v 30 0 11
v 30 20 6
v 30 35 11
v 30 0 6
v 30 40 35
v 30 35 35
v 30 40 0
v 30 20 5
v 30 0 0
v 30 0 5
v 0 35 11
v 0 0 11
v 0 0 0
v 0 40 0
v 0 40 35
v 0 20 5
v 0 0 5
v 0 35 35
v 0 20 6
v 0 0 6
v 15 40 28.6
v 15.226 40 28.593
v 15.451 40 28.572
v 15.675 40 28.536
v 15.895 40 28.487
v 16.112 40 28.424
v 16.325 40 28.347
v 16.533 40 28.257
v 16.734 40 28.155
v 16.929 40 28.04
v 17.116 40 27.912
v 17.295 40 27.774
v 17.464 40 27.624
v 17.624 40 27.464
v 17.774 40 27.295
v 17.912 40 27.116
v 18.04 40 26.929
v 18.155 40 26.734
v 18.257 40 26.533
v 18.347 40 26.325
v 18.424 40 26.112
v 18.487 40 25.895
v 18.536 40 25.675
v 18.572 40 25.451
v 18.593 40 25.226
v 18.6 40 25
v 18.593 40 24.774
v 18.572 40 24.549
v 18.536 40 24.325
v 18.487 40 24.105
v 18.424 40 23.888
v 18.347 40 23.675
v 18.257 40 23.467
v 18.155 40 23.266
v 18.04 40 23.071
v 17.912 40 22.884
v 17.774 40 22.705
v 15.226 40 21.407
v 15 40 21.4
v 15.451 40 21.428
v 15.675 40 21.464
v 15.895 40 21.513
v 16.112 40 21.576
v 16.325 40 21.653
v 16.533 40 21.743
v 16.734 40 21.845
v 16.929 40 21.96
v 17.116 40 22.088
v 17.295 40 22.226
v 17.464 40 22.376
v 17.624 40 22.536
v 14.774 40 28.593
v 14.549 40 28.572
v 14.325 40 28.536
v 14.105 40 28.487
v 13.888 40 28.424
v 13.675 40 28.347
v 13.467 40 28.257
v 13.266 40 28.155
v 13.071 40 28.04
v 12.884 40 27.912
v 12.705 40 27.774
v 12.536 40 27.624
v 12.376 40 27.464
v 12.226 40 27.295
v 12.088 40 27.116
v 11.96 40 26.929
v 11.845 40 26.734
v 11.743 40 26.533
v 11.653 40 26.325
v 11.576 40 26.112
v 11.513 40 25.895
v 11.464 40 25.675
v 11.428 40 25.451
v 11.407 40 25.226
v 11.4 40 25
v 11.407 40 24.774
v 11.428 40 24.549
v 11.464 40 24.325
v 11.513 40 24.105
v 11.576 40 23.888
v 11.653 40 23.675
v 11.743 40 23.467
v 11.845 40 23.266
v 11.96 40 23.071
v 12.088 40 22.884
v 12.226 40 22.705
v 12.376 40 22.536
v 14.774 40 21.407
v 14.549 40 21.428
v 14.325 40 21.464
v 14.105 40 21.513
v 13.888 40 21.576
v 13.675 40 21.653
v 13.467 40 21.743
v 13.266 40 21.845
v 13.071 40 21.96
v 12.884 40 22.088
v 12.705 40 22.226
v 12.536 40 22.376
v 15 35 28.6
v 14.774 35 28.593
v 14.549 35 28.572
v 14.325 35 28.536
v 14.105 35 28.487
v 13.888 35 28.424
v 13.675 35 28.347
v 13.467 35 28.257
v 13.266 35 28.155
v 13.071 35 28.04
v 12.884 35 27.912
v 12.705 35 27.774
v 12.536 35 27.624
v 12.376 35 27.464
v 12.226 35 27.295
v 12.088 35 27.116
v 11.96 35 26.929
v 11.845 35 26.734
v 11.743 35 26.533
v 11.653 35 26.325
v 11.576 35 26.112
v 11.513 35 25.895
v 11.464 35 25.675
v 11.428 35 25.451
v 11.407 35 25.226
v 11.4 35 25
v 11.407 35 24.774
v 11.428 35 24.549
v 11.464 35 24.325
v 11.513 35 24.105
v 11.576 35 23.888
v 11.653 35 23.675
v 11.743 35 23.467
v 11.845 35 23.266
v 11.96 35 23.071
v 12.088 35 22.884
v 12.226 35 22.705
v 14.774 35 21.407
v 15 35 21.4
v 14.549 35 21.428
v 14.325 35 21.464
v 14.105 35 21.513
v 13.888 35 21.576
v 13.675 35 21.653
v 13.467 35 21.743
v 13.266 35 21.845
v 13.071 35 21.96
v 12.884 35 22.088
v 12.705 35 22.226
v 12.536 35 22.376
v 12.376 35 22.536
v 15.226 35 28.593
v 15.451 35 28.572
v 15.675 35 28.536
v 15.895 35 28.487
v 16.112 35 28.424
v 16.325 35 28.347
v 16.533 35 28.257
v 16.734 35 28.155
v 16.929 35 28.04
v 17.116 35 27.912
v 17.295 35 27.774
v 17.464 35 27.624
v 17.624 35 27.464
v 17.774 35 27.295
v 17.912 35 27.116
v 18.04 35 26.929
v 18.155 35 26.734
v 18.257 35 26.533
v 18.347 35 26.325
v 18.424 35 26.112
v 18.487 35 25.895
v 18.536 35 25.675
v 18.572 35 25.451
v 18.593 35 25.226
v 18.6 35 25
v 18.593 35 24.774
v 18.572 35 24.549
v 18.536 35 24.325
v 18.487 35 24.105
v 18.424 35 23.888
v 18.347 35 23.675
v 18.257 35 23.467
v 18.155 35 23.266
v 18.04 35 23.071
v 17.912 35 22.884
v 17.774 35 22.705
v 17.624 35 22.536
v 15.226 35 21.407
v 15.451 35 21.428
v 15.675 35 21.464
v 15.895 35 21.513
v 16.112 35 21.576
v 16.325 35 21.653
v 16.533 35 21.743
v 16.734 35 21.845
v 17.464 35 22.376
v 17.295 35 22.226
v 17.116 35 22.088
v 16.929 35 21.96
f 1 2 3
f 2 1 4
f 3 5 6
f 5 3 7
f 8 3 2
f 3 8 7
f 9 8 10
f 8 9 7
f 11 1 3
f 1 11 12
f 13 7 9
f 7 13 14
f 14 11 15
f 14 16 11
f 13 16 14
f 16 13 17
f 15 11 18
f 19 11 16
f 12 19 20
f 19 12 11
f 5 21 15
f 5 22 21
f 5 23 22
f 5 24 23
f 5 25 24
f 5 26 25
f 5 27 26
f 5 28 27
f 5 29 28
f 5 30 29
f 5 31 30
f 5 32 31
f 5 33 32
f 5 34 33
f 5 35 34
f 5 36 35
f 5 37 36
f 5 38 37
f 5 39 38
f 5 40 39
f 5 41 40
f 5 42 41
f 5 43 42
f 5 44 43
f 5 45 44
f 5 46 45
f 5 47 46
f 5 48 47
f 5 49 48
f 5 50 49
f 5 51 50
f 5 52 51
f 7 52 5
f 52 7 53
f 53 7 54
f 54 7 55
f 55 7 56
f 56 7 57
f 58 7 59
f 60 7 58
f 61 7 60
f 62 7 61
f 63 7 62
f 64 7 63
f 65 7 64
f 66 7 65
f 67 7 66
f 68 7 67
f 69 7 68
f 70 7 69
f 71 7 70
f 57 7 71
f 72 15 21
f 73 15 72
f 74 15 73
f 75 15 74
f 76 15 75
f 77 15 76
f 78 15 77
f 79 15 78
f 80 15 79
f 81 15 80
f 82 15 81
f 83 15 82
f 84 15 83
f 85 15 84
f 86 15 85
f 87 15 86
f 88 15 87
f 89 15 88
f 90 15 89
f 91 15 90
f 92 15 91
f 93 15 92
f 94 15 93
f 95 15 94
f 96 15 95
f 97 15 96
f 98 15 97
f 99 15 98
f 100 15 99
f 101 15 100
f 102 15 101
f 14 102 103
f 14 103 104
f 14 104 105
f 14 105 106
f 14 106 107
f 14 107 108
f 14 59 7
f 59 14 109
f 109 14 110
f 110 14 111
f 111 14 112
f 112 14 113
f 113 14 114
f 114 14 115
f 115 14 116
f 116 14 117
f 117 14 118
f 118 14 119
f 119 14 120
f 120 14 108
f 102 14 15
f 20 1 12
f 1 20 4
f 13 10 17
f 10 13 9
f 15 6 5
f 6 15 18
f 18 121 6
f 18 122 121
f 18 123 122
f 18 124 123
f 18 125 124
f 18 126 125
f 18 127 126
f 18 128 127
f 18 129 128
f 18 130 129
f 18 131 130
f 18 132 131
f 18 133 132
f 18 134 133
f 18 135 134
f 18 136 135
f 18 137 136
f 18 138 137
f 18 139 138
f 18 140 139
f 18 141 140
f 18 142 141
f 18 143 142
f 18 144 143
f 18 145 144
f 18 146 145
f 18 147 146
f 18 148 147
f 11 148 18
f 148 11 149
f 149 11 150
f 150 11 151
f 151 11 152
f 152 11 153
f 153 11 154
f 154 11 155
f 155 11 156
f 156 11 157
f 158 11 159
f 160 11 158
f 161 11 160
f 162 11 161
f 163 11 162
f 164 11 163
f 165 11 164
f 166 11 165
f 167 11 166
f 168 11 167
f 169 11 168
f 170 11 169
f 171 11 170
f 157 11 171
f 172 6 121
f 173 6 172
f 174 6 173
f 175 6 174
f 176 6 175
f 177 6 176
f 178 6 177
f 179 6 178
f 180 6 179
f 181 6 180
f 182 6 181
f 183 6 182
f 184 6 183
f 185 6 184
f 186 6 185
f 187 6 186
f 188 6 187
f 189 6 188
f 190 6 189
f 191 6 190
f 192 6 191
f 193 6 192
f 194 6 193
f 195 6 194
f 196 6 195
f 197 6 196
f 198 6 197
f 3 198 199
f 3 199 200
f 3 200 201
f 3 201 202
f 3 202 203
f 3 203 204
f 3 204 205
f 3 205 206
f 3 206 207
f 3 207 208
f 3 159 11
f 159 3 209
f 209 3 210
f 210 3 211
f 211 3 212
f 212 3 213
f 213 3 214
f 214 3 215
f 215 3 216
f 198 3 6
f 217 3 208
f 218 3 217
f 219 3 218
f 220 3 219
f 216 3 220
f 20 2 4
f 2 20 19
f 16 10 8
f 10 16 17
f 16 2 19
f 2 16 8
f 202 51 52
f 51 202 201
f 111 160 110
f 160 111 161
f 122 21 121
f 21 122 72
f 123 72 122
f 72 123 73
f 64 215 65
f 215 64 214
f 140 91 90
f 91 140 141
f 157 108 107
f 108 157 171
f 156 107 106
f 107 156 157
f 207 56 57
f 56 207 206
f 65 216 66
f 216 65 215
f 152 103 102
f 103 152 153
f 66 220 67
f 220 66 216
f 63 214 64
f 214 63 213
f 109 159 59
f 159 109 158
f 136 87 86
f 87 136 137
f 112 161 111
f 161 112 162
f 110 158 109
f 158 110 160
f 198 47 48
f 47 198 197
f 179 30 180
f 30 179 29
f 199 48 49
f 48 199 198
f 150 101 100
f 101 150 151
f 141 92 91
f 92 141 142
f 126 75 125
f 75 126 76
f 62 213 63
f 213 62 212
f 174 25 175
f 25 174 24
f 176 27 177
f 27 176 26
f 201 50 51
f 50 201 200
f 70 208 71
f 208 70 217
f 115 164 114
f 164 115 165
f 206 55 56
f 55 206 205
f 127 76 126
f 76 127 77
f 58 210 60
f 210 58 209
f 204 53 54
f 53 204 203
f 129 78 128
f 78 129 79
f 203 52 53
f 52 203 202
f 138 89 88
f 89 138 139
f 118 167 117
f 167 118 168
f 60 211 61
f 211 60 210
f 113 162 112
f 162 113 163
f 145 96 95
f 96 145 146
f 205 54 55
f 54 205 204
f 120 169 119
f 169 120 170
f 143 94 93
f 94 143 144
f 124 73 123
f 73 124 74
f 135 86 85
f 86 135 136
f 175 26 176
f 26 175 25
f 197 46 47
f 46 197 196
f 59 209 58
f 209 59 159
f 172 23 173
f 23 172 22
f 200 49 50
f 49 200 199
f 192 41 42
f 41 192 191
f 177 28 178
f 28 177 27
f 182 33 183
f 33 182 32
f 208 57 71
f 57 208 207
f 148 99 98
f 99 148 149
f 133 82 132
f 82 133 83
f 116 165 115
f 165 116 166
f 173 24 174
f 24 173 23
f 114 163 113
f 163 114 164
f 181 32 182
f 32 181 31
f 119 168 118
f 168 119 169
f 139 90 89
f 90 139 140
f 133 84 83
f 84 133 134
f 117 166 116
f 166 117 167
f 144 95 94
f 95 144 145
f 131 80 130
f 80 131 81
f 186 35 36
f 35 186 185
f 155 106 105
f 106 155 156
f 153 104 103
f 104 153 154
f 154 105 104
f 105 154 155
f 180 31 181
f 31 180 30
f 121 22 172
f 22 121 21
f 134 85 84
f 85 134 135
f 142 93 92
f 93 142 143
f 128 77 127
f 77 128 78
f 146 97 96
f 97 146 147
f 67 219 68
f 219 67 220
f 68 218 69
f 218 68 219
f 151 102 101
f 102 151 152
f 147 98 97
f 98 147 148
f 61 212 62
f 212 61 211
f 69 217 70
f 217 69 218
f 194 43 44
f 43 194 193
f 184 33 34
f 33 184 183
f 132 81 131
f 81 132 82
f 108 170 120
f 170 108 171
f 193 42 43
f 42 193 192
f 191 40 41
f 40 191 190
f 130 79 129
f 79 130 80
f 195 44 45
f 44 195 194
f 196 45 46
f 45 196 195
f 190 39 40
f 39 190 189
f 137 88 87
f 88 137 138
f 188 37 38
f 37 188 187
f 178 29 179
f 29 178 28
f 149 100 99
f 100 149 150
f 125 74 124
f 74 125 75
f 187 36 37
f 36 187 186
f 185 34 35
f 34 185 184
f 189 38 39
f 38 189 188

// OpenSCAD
difference()
{
    union()
    {
        width = 40;
        height = 11;

        cube(size = [ 30, width, height ]);

        translate([ 0, width - 5, 0 ]) cube(size = [ 30, 5, 35 ]);

       
    }
    union()
    {
        width = 20;
        height = 1;

        translate([ 0, 0, 5 ]) cube(size = [ 40, width, height ]);
    }
    union () {
        translate([ 15, 20, 25 ])
        rotate([ 0, 90, 90 ])
        cylinder(h = 35, r = 3.6, center = false, $fn = 100);
    }
}
